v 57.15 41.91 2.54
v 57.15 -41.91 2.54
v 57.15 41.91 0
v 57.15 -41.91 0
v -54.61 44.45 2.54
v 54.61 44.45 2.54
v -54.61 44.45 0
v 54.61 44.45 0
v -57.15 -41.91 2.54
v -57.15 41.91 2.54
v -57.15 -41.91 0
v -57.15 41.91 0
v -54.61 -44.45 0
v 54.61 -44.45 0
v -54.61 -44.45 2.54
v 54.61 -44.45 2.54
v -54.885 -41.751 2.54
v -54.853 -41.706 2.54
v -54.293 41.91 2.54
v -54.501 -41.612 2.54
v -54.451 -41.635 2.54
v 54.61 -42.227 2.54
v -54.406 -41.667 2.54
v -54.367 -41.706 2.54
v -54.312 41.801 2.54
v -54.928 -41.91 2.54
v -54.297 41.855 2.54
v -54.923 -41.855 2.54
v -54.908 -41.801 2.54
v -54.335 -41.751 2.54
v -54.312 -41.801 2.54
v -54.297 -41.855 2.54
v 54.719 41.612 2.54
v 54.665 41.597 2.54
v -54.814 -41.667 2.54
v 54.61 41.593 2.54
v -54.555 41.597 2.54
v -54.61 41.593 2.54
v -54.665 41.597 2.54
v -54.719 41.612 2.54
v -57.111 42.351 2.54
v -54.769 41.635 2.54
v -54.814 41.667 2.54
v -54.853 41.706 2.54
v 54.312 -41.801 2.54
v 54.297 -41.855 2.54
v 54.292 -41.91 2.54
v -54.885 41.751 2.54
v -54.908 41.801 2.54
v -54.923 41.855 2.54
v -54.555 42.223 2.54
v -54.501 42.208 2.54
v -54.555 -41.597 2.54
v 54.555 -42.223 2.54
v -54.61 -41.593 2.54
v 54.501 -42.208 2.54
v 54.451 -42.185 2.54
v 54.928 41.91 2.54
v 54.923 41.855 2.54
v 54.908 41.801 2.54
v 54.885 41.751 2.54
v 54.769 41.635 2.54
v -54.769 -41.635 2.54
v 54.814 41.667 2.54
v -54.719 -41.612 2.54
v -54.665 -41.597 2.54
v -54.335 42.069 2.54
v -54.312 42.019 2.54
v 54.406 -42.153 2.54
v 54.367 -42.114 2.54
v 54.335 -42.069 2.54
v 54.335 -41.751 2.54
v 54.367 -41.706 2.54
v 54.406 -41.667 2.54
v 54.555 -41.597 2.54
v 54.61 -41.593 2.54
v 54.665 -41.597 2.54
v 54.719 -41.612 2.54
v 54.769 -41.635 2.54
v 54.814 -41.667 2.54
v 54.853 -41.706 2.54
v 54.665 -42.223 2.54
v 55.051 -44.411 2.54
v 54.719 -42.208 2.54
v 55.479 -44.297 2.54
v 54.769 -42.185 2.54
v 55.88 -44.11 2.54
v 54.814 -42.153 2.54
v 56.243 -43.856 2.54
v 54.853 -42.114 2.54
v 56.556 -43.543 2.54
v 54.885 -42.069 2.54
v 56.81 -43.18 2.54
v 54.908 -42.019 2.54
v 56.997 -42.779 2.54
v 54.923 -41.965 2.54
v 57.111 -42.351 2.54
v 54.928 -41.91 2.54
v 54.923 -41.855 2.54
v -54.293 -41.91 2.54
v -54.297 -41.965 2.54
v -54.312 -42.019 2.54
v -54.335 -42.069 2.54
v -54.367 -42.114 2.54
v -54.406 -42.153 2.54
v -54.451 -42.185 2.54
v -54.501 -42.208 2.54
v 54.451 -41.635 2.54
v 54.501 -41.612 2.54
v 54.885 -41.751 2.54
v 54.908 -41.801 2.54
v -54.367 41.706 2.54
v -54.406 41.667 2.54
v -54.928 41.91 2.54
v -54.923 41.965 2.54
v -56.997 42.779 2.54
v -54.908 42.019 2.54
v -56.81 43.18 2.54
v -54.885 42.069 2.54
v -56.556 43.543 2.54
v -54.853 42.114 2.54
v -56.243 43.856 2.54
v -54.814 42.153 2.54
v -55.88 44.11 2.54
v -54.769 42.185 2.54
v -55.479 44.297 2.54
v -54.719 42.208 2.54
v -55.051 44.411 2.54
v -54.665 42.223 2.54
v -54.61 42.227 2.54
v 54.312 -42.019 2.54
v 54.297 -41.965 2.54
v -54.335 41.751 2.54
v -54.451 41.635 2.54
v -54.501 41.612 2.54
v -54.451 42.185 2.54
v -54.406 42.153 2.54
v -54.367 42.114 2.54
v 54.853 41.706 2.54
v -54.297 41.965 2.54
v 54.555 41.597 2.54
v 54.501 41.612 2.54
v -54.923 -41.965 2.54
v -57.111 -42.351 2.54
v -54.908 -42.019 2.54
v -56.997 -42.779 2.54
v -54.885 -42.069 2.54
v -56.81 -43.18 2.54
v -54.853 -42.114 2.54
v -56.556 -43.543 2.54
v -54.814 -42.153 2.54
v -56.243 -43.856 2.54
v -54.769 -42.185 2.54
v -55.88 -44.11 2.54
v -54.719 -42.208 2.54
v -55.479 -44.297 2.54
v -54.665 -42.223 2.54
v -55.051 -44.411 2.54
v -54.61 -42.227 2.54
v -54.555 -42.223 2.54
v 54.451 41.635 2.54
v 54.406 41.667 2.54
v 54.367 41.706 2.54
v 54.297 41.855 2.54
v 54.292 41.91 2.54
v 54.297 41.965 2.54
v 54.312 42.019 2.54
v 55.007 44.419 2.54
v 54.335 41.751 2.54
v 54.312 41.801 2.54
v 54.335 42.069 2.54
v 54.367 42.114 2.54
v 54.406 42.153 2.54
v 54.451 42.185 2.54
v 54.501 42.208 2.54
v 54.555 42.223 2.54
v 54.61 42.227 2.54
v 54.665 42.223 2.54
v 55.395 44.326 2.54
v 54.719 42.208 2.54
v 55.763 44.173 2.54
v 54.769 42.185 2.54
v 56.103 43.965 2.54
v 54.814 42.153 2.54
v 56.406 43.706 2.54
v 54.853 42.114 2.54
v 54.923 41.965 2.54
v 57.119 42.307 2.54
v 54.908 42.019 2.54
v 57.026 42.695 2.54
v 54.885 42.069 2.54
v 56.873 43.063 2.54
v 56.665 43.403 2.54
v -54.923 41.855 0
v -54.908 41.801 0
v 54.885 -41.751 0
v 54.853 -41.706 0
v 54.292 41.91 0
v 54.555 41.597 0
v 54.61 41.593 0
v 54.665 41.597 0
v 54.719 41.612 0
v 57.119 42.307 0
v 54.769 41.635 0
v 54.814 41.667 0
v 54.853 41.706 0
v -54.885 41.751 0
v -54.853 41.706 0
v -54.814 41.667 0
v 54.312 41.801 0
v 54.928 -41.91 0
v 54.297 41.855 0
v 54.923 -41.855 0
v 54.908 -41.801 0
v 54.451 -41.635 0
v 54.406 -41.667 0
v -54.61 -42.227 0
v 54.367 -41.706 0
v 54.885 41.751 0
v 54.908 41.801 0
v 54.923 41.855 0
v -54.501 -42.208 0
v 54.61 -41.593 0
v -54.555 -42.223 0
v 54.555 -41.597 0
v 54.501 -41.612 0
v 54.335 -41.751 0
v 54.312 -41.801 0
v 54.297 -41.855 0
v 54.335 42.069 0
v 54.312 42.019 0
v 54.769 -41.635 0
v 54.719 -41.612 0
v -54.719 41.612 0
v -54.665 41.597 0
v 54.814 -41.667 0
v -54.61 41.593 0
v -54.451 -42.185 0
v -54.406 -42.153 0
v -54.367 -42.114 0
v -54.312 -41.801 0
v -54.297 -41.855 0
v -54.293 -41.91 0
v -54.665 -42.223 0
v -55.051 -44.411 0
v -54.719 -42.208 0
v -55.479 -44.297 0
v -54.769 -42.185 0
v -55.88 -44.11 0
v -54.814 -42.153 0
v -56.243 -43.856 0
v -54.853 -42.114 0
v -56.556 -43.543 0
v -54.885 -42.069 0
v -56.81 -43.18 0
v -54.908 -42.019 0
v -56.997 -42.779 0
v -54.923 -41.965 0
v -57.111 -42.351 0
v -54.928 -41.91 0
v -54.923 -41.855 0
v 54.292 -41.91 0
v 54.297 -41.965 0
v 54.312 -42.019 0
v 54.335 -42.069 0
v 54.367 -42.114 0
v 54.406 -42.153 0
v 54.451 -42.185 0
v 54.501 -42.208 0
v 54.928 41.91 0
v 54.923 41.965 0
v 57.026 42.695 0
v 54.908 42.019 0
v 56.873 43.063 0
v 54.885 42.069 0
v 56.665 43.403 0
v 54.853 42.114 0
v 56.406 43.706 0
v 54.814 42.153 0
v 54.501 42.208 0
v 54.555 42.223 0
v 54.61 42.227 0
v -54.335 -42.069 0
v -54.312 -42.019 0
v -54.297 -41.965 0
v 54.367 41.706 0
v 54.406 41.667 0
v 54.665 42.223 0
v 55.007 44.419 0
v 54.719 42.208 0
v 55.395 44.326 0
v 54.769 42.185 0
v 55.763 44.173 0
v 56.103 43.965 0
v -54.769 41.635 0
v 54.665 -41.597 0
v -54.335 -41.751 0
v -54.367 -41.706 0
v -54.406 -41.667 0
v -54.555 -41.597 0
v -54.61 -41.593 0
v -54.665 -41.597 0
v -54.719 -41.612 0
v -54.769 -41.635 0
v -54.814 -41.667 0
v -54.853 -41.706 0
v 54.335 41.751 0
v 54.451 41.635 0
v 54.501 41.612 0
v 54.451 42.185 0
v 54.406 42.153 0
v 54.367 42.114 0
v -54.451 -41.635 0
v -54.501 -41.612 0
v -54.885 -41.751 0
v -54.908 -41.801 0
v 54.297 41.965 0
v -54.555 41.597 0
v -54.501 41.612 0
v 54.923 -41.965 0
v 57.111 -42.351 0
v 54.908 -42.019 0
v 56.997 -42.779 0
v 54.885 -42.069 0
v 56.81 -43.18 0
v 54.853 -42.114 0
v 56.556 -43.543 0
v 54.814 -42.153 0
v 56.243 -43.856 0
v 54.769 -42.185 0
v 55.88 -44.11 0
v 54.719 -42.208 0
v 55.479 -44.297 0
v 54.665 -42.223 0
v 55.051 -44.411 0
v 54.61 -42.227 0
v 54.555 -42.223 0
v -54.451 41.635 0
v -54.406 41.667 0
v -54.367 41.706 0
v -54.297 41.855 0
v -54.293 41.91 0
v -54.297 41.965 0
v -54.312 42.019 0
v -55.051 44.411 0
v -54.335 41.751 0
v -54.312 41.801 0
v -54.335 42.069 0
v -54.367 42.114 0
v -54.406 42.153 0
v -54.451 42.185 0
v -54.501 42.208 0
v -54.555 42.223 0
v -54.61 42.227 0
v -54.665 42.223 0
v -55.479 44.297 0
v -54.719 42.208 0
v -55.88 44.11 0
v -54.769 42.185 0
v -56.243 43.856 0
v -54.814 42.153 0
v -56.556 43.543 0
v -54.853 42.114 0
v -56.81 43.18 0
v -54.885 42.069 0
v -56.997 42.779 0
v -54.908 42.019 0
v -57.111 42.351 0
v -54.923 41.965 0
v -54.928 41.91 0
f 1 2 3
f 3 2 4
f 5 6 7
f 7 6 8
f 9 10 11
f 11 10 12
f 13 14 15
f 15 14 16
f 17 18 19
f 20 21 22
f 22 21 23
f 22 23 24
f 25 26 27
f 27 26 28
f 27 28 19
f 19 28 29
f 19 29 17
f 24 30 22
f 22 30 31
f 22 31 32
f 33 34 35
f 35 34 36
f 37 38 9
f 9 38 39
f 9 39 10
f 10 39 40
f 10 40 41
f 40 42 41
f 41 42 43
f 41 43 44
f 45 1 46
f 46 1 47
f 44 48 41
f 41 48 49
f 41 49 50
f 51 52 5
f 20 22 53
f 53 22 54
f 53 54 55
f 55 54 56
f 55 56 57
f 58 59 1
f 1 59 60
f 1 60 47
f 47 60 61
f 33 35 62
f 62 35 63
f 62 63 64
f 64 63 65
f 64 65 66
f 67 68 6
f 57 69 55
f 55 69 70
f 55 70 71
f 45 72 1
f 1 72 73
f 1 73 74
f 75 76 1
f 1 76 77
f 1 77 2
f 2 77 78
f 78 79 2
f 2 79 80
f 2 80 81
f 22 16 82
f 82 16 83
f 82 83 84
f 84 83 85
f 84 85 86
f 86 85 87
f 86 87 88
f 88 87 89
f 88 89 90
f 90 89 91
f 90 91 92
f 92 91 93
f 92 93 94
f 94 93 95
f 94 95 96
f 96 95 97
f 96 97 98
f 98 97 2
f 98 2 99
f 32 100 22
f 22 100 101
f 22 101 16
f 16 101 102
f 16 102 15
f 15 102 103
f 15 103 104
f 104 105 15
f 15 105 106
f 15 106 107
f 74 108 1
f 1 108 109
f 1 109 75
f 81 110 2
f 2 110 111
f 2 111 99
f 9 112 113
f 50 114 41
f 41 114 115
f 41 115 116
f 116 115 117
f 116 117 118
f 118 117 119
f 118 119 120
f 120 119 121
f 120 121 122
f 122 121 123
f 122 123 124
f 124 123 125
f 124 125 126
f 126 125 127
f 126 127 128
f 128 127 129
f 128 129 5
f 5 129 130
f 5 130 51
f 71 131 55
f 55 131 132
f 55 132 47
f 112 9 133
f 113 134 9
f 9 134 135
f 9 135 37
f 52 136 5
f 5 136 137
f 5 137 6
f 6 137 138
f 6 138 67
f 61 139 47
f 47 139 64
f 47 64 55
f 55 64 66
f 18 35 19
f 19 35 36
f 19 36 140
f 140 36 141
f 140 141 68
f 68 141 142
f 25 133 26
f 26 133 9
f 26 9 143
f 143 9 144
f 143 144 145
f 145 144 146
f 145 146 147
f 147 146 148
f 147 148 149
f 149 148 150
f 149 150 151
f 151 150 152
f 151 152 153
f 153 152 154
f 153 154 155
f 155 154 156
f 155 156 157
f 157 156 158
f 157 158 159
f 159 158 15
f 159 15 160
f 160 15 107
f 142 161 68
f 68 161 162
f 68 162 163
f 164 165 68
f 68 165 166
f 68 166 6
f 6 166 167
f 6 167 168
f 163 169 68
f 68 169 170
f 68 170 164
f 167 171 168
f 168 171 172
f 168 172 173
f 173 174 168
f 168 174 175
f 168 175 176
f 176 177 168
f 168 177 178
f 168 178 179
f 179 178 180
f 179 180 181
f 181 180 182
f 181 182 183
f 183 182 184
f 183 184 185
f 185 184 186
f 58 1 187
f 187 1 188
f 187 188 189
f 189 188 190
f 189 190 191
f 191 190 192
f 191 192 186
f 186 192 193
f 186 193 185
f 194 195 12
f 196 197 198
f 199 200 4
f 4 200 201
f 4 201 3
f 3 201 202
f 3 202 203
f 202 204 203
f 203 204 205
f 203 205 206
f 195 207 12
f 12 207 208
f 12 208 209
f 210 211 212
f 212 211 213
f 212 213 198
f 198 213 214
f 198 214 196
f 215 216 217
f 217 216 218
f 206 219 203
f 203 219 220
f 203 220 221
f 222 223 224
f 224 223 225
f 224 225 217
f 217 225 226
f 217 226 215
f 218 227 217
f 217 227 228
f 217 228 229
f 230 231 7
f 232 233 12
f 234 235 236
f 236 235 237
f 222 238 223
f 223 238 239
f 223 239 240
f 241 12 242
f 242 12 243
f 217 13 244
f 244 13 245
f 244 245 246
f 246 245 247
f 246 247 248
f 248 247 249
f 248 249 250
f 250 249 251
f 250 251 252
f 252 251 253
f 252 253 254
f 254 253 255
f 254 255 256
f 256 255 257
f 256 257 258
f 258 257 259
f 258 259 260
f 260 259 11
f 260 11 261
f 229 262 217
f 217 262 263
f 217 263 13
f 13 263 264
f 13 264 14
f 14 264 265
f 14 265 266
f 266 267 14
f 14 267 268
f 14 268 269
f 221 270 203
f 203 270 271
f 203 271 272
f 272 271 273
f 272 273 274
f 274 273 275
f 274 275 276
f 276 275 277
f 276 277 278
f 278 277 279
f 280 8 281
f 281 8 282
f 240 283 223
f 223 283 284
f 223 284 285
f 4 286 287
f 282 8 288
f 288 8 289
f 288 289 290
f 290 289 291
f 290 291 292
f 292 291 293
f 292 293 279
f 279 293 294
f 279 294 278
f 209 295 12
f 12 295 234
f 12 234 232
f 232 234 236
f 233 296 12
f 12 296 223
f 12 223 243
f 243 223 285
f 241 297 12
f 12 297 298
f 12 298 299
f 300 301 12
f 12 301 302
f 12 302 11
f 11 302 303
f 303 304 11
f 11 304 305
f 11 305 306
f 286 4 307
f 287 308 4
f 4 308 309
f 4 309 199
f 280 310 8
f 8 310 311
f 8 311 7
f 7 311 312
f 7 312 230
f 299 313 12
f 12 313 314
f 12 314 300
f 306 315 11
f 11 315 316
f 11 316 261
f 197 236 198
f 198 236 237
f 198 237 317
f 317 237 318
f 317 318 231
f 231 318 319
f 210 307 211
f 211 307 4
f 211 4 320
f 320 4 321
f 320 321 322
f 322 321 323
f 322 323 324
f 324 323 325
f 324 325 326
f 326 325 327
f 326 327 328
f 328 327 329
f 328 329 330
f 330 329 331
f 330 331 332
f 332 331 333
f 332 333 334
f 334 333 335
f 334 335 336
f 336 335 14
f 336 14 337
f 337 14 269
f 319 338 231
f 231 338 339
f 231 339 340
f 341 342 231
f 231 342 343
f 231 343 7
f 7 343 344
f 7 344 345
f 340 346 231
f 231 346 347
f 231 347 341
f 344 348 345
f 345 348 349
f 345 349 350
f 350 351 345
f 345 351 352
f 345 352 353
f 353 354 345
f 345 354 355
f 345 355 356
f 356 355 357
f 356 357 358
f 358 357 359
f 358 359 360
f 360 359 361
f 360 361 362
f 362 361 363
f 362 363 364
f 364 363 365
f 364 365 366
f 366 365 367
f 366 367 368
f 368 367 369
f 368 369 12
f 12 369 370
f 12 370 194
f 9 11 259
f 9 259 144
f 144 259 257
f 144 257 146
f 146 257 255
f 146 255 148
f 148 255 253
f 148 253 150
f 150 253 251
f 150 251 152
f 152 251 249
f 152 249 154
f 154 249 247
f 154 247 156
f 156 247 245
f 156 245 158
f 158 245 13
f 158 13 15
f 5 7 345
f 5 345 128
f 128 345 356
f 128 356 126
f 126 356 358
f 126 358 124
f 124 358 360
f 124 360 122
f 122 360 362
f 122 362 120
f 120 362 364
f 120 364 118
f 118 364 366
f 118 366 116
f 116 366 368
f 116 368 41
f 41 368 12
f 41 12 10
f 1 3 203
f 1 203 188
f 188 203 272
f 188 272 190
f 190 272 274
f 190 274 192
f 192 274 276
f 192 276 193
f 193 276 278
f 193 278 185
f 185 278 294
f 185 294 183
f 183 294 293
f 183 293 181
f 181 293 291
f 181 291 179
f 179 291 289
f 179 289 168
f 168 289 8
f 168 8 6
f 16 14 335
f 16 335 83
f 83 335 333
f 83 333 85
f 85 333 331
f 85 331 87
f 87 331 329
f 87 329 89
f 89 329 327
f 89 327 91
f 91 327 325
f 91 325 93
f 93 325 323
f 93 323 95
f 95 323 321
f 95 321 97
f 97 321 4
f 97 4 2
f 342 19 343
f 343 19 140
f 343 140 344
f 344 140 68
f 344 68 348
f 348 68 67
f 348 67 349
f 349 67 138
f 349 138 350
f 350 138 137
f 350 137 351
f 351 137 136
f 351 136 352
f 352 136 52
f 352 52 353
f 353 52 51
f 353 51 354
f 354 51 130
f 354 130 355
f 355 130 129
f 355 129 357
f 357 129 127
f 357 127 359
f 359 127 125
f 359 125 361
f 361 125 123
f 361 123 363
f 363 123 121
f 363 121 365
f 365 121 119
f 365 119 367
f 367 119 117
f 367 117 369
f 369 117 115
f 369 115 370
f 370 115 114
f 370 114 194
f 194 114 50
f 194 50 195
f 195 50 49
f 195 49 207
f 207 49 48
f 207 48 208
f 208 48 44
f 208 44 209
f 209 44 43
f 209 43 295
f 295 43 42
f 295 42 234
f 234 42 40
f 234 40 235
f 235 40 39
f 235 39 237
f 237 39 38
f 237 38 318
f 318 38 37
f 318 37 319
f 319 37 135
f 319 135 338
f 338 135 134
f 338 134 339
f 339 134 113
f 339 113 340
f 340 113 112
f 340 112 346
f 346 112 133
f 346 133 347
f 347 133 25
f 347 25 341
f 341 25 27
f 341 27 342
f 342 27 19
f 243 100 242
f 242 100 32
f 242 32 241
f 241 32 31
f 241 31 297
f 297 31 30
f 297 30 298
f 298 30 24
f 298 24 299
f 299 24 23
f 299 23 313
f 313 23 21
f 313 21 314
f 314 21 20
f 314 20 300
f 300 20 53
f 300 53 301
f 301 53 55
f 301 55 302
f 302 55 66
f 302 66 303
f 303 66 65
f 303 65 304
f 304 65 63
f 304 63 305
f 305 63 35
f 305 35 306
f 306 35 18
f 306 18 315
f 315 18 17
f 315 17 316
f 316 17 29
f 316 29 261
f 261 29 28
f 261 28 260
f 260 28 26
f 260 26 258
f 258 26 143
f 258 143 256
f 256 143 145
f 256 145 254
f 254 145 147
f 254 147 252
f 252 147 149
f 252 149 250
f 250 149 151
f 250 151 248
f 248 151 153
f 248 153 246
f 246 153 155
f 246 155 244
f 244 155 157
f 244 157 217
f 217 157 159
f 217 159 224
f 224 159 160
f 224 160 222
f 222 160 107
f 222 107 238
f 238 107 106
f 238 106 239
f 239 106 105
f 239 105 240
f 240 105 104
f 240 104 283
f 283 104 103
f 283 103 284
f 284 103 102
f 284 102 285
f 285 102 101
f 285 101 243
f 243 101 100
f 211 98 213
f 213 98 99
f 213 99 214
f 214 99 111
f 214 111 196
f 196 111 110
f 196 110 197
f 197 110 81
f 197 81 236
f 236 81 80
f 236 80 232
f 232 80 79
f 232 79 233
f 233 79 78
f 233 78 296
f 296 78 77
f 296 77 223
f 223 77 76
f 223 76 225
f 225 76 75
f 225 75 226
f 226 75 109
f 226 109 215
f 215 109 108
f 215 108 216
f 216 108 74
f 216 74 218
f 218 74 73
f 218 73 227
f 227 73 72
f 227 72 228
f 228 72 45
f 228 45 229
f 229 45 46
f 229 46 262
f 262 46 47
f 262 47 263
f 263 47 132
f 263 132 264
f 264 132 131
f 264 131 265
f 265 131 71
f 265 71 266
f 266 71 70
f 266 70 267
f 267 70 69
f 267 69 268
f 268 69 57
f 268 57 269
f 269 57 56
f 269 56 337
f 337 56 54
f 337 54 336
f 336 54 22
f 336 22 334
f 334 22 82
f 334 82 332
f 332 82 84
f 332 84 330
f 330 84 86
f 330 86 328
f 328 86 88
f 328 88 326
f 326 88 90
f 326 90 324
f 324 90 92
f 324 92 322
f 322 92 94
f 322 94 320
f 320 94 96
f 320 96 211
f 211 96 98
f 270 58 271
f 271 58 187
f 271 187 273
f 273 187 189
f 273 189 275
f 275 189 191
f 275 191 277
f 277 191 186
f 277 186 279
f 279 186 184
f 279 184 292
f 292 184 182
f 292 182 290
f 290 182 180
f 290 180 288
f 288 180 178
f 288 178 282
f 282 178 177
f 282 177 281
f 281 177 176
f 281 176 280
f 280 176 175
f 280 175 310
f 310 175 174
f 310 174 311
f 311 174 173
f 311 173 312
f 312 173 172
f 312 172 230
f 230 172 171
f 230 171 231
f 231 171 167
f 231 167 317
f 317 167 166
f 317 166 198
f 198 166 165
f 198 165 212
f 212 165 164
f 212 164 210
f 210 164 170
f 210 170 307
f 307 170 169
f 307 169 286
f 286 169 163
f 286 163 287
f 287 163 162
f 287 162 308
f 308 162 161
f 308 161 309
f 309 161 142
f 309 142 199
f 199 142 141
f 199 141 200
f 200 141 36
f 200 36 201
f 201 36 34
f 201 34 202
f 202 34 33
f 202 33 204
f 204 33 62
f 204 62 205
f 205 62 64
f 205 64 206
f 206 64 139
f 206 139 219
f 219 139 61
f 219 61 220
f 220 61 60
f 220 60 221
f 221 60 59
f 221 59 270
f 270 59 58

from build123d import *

# Parameters (mm, degrees)
SKETCH1_W           = 114.3
SKETCH1_H           = 88.9
BOSS_EXTRUDE1_DEPTH = 2.54
FILLET1_R           = 2.54
CUT_EXTRUDE1_REACH  = 4.54
SKETCH2_R           = 0.3175


with BuildPart() as part:
    # Sketch1 → Boss-Extrude1 (new body)
    with BuildSketch(Plane.XY):
        Rectangle(SKETCH1_W, SKETCH1_H)
    extrude(amount=BOSS_EXTRUDE1_DEPTH)

    # Fillet1
    fillet1_edges = [part.edges().sort_by_distance(p)[0] for p in [
        (57.15, -44.45, 1.27),
        (-57.15, -44.45, 1.27),
        (-57.15, 44.45, 1.27),
        (57.15, 44.45, 1.27),
    ]]
    fillet(fillet1_edges, radius=FILLET1_R)

    # Sketch2 → Cut-Extrude1 (cut, up to next)
    with BuildSketch(Plane.XY.offset(2.54), mode=Mode.PRIVATE) as cut_extrude1_sk1:
        with Locations((-54.61, 41.91)):
            Circle(SKETCH2_R)
    cut_extrude1_tool1 = extrude(cut_extrude1_sk1.sketch, amount=-CUT_EXTRUDE1_REACH, mode=Mode.PRIVATE) & part.part
    add(cut_extrude1_tool1.solids().sort_by_distance((-54.61, 41.91, 2.54))[0], mode=Mode.SUBTRACT)
    # Sketch2 → Cut-Extrude1 (cut, up to next)
    with BuildSketch(Plane.XY.offset(2.54), mode=Mode.PRIVATE) as cut_extrude1_sk2:
        with Locations((54.61, 41.91)):
            Circle(SKETCH2_R)
    cut_extrude1_tool2 = extrude(cut_extrude1_sk2.sketch, amount=-CUT_EXTRUDE1_REACH, mode=Mode.PRIVATE) & part.part
    add(cut_extrude1_tool2.solids().sort_by_distance((54.61, 41.91, 2.54))[0], mode=Mode.SUBTRACT)
    # Sketch2 → Cut-Extrude1 (cut, up to next)
    with BuildSketch(Plane.XY.offset(2.54), mode=Mode.PRIVATE) as cut_extrude1_sk3:
        with Locations((54.61, -41.91)):
            Circle(SKETCH2_R)
    cut_extrude1_tool3 = extrude(cut_extrude1_sk3.sketch, amount=-CUT_EXTRUDE1_REACH, mode=Mode.PRIVATE) & part.part
    add(cut_extrude1_tool3.solids().sort_by_distance((54.61, -41.91, 2.54))[0], mode=Mode.SUBTRACT)
    # Sketch2 → Cut-Extrude1 (cut, up to next)
    with BuildSketch(Plane.XY.offset(2.54), mode=Mode.PRIVATE) as cut_extrude1_sk4:
        with Locations((-54.61, -41.91)):
            Circle(SKETCH2_R)
    cut_extrude1_tool4 = extrude(cut_extrude1_sk4.sketch, amount=-CUT_EXTRUDE1_REACH, mode=Mode.PRIVATE) & part.part
    add(cut_extrude1_tool4.solids().sort_by_distance((-54.61, -41.91, 2.54))[0], mode=Mode.SUBTRACT)


solid = part.part
